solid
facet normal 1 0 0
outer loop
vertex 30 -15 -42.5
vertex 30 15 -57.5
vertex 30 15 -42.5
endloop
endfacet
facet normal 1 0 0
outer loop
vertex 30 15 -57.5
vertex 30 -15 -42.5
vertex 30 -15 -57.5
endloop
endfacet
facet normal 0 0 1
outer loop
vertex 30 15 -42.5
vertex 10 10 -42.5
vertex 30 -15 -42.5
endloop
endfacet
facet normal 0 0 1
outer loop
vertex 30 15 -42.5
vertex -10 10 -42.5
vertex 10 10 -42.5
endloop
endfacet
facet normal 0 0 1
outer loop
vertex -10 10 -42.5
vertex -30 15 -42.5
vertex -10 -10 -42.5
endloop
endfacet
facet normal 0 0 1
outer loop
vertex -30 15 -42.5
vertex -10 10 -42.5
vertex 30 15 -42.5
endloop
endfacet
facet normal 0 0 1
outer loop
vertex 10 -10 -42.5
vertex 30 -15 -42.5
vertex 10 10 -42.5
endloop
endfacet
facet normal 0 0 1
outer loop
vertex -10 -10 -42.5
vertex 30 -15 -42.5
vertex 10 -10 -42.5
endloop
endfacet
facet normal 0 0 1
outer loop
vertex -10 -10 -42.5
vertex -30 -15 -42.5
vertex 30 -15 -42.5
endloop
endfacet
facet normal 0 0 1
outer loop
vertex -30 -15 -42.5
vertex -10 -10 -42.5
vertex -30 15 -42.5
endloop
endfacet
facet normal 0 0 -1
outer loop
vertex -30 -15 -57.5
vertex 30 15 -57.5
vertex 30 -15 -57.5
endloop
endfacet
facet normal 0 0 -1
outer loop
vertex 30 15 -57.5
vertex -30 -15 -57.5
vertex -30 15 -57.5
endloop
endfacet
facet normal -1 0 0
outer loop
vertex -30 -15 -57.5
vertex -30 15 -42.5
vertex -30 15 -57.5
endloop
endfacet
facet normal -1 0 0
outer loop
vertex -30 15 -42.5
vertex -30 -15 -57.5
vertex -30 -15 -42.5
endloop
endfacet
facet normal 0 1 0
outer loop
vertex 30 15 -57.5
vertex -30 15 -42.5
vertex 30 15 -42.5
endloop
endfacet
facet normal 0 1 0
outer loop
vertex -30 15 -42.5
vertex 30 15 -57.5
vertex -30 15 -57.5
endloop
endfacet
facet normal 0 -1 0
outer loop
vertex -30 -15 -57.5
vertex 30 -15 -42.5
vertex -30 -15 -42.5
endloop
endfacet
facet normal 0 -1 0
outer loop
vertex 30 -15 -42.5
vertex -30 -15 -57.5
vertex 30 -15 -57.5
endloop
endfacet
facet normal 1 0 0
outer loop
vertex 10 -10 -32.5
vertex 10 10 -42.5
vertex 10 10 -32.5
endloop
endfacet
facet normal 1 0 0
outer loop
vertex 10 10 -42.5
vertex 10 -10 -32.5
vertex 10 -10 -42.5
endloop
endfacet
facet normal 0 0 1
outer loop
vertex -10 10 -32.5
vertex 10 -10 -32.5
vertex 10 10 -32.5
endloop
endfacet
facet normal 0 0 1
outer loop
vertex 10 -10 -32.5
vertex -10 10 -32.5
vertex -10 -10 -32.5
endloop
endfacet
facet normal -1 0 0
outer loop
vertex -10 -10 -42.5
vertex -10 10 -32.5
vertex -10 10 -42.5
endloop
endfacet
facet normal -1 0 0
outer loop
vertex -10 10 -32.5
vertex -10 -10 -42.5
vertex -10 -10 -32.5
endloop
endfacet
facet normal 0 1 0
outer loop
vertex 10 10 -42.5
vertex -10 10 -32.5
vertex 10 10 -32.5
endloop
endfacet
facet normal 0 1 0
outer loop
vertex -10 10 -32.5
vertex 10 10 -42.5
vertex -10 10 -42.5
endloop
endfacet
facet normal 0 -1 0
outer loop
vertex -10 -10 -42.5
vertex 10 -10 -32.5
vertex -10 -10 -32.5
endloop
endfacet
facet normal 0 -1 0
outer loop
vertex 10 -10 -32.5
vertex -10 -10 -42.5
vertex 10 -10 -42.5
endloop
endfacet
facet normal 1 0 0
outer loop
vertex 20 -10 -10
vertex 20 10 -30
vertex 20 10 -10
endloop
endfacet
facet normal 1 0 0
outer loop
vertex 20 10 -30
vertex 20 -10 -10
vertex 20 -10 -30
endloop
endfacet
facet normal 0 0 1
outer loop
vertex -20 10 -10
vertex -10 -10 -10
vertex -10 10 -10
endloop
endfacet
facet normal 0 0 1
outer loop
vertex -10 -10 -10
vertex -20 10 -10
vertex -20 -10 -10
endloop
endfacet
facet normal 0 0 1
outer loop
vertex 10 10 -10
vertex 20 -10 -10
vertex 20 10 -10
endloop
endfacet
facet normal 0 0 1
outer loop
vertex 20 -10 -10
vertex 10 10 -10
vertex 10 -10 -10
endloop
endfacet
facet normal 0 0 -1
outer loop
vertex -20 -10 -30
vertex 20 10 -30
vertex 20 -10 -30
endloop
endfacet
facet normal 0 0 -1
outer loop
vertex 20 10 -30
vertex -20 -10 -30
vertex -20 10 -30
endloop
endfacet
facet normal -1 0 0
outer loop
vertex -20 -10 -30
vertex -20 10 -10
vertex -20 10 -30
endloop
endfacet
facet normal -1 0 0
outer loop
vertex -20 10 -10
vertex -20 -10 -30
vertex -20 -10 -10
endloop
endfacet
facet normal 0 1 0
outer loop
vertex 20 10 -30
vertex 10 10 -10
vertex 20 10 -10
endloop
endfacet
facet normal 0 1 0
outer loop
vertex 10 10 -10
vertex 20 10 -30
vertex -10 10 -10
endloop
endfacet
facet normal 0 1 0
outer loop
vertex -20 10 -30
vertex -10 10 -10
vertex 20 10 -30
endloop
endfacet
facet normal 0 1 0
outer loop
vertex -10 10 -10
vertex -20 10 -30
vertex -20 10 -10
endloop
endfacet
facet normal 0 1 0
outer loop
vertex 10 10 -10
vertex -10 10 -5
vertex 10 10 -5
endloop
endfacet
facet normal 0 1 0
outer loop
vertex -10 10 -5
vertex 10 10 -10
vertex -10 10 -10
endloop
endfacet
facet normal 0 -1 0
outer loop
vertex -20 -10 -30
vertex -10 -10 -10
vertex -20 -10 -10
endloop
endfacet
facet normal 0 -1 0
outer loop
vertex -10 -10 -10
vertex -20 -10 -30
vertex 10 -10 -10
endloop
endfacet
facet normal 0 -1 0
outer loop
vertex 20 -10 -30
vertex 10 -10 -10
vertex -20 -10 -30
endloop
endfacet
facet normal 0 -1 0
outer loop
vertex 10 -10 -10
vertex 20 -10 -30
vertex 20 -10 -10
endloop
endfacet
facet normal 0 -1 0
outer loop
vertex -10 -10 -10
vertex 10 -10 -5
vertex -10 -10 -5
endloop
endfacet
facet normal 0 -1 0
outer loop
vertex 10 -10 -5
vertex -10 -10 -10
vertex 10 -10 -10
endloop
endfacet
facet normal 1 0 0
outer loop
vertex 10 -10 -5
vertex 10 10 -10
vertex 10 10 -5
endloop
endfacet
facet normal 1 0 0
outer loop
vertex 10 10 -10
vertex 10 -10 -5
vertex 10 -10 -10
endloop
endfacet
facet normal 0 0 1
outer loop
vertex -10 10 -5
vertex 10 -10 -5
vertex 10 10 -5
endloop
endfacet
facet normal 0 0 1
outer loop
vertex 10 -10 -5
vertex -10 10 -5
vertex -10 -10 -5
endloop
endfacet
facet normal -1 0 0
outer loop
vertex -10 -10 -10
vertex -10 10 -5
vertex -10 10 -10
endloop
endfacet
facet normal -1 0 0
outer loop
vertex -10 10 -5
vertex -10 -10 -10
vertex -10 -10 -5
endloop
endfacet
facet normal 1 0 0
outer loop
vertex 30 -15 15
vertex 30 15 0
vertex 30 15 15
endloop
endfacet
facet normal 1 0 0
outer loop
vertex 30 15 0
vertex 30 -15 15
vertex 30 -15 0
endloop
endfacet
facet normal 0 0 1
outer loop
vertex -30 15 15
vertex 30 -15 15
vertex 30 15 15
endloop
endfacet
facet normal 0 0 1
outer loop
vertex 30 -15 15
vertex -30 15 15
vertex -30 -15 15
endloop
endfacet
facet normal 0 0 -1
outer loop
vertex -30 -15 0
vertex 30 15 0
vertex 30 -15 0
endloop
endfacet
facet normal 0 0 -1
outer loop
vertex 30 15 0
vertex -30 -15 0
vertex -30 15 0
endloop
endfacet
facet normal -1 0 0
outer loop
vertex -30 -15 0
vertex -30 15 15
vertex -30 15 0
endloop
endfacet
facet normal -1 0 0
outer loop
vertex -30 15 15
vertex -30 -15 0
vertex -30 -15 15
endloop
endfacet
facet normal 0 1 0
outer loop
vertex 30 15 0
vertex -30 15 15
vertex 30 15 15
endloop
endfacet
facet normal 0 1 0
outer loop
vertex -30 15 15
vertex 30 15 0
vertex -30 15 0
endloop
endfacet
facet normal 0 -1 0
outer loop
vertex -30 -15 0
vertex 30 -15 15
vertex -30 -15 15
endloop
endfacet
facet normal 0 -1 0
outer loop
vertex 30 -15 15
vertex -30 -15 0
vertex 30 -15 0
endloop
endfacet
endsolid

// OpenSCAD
// Dimensions for the blocks
large_block = [60, 30, 15];  // Length, Width, Height
medium_block = [40, 20, 20];
small_block = [20, 20, 10];

// Function to create a block
module block(size) {
    cube(size, center = true);
}

// Layer 1: Large rectangular block at the bottom
translate([0, 0, -50])  // Positioning the block
    block(large_block);

// Layer 2: Small rectangular block above the large block
translate([0, 0, -50 + large_block[2] / 2 + small_block[2] / 2])
    block(small_block);

// Layer 3: Medium rectangular block above the small block
translate([0, 0, -50 + large_block[2] + small_block[2] / 2 + medium_block[2] / 2])
    block(medium_block);

// Layer 4: Second small rectangular block above the medium block
translate([0, 0, -50 + large_block[2] + small_block[2] + medium_block[2] / 2 + small_block[2] / 2])
    block(small_block);

// Layer 5: Second large rectangular block at the top
translate([0, 0, -50 + large_block[2] + small_block[2] + medium_block[2] + small_block[2] / 2 + large_block[2] / 2])
    block(large_block);
